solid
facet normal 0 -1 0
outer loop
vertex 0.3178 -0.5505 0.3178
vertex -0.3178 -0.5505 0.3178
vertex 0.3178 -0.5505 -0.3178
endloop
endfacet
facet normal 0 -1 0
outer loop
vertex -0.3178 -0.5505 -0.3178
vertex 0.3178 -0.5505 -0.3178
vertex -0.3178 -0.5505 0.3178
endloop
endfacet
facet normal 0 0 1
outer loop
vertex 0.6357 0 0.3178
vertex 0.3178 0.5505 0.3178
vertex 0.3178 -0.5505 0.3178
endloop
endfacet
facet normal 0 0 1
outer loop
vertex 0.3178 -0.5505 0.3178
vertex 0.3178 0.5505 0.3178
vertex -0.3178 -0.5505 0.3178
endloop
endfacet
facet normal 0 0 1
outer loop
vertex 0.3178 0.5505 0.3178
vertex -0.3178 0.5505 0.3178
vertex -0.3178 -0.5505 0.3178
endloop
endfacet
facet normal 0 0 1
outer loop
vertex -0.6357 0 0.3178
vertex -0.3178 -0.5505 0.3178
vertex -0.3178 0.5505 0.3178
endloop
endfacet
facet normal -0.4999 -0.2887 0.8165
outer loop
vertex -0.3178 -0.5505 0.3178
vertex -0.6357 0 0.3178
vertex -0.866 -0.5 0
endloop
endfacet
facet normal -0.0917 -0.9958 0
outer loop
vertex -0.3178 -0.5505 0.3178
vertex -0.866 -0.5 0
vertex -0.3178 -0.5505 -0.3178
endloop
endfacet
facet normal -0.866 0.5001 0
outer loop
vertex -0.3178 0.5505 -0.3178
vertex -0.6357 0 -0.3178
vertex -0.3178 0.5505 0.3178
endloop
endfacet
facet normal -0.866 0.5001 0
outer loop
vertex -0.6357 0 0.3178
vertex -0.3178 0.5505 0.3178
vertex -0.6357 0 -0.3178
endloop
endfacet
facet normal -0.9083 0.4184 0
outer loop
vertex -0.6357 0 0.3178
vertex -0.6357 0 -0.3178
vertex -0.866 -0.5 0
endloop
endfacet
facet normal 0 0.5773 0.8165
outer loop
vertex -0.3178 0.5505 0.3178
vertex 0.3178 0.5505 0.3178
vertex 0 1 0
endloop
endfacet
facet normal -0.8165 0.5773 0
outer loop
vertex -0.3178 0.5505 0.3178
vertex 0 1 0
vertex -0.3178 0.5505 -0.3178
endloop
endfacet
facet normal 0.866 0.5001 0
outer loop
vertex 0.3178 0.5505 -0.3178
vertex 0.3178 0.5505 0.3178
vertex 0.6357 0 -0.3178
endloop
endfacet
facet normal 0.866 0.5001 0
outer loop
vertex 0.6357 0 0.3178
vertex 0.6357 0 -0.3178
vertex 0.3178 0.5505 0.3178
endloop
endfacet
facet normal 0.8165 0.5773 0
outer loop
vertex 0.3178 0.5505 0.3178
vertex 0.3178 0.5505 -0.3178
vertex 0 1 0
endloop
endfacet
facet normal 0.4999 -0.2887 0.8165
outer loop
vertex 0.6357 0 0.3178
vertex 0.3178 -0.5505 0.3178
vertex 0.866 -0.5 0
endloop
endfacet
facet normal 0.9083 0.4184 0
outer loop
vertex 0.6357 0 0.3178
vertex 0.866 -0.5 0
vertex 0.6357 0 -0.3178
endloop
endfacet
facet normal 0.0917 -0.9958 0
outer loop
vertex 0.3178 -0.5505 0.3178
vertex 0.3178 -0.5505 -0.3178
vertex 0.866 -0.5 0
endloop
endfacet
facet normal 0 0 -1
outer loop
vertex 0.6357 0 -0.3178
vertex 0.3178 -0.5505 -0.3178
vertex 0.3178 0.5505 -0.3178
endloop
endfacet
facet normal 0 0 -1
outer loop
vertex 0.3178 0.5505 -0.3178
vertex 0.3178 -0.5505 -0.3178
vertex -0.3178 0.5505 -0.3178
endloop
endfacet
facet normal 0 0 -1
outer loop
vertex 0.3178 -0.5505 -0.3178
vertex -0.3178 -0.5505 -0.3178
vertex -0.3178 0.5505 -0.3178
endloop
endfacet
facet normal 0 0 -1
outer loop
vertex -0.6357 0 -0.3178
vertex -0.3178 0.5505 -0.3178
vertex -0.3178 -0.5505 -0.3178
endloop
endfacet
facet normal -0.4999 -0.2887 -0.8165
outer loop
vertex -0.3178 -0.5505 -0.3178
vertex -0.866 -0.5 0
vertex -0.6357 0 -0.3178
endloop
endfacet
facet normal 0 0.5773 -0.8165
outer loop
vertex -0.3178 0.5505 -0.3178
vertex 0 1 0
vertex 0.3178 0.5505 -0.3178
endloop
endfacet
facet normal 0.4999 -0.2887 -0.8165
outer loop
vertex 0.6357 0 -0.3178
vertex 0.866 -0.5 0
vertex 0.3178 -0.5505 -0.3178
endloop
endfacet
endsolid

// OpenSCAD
polyhedron( points = [[-0.317837245210197, -0.550510257244894, 0.317837245203842], [-0.635674490423084, 7.76596091382773e-11, 0.317837245203842], [-0.317837245160765, 0.550510257257518, 0.317837245203842], [0.317837245232053, 0.550510257200435, 0.317837245203842], [0.635674490395509, -3.64986379838809e-11, 0.317837245203842], [0.317837245182623, -0.550510257244894, 0.317837245203842], [-0.317837245181657, -0.550510257195462, -0.317837245188977], [-0.635674490366005, 7.76615146375069e-11, -0.317837245188977], [-0.317837245132225, 0.550510257208082, -0.317837245188977], [0.317837245203517, 0.550510257150999, -0.317837245188977], [0.635674490338432, -3.64986379838809e-11, -0.317837245188977], [0.317837245154084, -0.550510257195464, -0.317837245188977], [-0.866025403822609, -0.499999999933887, -2.97291049616293e-11], [9.24862986436597e-11, 0.999999999934748, -2.97316456272687e-11], [0.866025403697838, -0.500000000019507, -2.97278346288096e-11]], faces = [[0, 6, 11, 5], [0, 5, 4, 3, 2, 1], [0, 1, 12], [0, 12, 6], [1, 2, 8, 7], [1, 7, 12], [2, 3, 13], [2, 13, 8], [3, 4, 10, 9], [3, 9, 13], [4, 5, 14], [4, 14, 10], [5, 11, 14], [6, 7, 8, 9, 10, 11], [6, 12, 7], [8, 13, 9], [10, 14, 11]]);
